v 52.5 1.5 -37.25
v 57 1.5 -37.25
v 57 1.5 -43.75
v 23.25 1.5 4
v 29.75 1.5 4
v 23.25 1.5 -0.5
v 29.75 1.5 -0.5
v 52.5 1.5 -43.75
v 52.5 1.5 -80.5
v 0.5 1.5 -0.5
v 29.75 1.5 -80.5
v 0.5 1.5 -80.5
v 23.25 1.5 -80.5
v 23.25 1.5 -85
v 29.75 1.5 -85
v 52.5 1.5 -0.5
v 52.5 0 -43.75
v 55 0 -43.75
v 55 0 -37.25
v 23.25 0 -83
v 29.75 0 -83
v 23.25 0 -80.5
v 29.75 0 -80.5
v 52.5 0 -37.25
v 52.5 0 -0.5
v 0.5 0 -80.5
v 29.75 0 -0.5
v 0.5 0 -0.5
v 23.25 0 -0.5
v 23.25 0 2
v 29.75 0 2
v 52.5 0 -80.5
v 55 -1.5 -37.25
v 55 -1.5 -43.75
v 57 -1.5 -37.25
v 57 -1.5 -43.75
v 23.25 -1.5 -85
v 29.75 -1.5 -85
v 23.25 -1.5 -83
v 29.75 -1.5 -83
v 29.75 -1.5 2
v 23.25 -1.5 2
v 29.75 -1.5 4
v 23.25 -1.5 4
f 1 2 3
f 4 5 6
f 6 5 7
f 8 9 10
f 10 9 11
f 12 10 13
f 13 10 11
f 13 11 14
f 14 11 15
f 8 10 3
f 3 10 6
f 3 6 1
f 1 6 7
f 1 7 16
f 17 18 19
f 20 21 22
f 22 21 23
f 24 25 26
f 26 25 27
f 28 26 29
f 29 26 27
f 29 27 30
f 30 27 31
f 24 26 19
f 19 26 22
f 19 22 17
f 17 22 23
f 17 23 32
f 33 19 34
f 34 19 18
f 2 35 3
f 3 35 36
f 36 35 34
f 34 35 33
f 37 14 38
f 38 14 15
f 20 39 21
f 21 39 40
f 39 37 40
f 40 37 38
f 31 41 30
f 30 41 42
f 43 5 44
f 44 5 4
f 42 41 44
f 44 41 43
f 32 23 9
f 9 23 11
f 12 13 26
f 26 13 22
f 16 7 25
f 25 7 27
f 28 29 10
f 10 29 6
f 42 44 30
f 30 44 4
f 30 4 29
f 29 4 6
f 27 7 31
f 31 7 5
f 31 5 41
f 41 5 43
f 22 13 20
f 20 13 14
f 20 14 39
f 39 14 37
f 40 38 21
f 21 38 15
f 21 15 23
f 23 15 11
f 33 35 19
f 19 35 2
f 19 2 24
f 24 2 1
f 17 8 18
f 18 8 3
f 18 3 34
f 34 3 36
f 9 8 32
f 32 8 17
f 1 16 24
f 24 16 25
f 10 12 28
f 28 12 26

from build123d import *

# Parameters (mm, degrees)
BOSS_EXTRUDE1_DEPTH = 1.5
SKETCH2_W           = 7
SKETCH2_H           = 2
SKETCH2_W_2         = 2
SKETCH2_H_2         = 7
BOSS_EXTRUDE2_DEPTH = 3
SKETCH3_W           = 23
SKETCH3_H           = 0.5
CUT_EXTRUDE1_DEPTH  = 10
SKETCH4_W           = 23
SKETCH4_H           = 0.5
CUT_EXTRUDE2_DEPTH  = 10
SKETCH5_W           = 0.25
SKETCH5_H           = 4.5
SKETCH5_W_2         = 4
SKETCH5_H_2         = 0.25
CUT_EXTRUDE3_DEPTH  = 10
SKETCH6_W           = 0.5
SKETCH6_H           = 80
SKETCH6_H_2         = 36.75
CUT_EXTRUDE4_DEPTH  = 10


with BuildPart() as part:
    # Sketch1 → Boss-Extrude1 (new body)
    with BuildSketch(Plane(origin=(0, 0, 0), x_dir=(1, 0, 0), z_dir=(0, 1, 0))):
        Polygon((30, 81), (53, 81), (53, 44), (55, 44), (55, 37), (53, 37), (53, 0), (30, 0), (30, -2), (23, -2), (23, 0), (0, 0), (0, 81), (23, 81), (23, 83), (30, 83), align=None)
    extrude(amount=BOSS_EXTRUDE1_DEPTH)

    # Sketch2 → Boss-Extrude2 (add)
    with BuildSketch(Plane(origin=(0, 1.5, 0), x_dir=(1, 0, 0), z_dir=(0, 1, 0))):
        with Locations((26.5, 84)):
            Rectangle(SKETCH2_W, SKETCH2_H)
        with Locations((56, 40.5)):
            Rectangle(SKETCH2_W_2, SKETCH2_H_2)
        with Locations((26.5, -3)):
            Rectangle(SKETCH2_W, SKETCH2_H)
    extrude(amount=-BOSS_EXTRUDE2_DEPTH)

    # Sketch3 → Cut-Extrude1 (cut)
    with BuildSketch(Plane(origin=(0, 1.5, 0), x_dir=(1, 0, 0), z_dir=(0, 1, 0))):
        with Locations((11.5, 80.75)):
            Rectangle(SKETCH3_W, SKETCH3_H)
        with Locations((41.5, 80.75)):
            Rectangle(SKETCH3_W, SKETCH3_H)
    extrude(amount=-CUT_EXTRUDE1_DEPTH, mode=Mode.SUBTRACT)

    # Sketch4 → Cut-Extrude2 (cut)
    with BuildSketch(Plane(origin=(0, 1.5, 0), x_dir=(1, 0, 0), z_dir=(0, 1, 0))):
        with Locations((11.5, 0.25)):
            Rectangle(SKETCH4_W, SKETCH4_H)
        with Locations((41.5, 0.25)):
            Rectangle(SKETCH4_W, SKETCH4_H)
    extrude(amount=-CUT_EXTRUDE2_DEPTH, mode=Mode.SUBTRACT)

    # Sketch5 → Cut-Extrude3 (cut)
    with BuildSketch(Plane(origin=(0, 1.5, 0), x_dir=(1, 0, 0), z_dir=(0, 1, 0))):
        with Locations((23.125, 82.75)):
            Rectangle(SKETCH5_W, SKETCH5_H)
        with Locations((29.875, 82.75)):
            Rectangle(SKETCH5_W, SKETCH5_H)
        with Locations((55, 43.875)):
            Rectangle(SKETCH5_W_2, SKETCH5_H_2)
        with Locations((55, 37.125)):
            Rectangle(SKETCH5_W_2, SKETCH5_H_2)
        with Locations((23.125, -1.75)):
            Rectangle(SKETCH5_W, SKETCH5_H)
        with Locations((29.875, -1.75)):
            Rectangle(SKETCH5_W, SKETCH5_H)
    extrude(amount=-CUT_EXTRUDE3_DEPTH, mode=Mode.SUBTRACT)

    # Sketch6 → Cut-Extrude4 (cut)
    with BuildSketch(Plane(origin=(0, 1.5, 0), x_dir=(1, 0, 0), z_dir=(0, 1, 0))):
        with Locations((0.25, 40.5)):
            Rectangle(SKETCH6_W, SKETCH6_H)
        with Locations((52.75, 18.875)):
            Rectangle(SKETCH6_W, SKETCH6_H_2)
        with Locations((52.75, 62.125)):
            Rectangle(SKETCH6_W, SKETCH6_H_2)
    extrude(amount=-CUT_EXTRUDE4_DEPTH, mode=Mode.SUBTRACT)


solid = part.part
